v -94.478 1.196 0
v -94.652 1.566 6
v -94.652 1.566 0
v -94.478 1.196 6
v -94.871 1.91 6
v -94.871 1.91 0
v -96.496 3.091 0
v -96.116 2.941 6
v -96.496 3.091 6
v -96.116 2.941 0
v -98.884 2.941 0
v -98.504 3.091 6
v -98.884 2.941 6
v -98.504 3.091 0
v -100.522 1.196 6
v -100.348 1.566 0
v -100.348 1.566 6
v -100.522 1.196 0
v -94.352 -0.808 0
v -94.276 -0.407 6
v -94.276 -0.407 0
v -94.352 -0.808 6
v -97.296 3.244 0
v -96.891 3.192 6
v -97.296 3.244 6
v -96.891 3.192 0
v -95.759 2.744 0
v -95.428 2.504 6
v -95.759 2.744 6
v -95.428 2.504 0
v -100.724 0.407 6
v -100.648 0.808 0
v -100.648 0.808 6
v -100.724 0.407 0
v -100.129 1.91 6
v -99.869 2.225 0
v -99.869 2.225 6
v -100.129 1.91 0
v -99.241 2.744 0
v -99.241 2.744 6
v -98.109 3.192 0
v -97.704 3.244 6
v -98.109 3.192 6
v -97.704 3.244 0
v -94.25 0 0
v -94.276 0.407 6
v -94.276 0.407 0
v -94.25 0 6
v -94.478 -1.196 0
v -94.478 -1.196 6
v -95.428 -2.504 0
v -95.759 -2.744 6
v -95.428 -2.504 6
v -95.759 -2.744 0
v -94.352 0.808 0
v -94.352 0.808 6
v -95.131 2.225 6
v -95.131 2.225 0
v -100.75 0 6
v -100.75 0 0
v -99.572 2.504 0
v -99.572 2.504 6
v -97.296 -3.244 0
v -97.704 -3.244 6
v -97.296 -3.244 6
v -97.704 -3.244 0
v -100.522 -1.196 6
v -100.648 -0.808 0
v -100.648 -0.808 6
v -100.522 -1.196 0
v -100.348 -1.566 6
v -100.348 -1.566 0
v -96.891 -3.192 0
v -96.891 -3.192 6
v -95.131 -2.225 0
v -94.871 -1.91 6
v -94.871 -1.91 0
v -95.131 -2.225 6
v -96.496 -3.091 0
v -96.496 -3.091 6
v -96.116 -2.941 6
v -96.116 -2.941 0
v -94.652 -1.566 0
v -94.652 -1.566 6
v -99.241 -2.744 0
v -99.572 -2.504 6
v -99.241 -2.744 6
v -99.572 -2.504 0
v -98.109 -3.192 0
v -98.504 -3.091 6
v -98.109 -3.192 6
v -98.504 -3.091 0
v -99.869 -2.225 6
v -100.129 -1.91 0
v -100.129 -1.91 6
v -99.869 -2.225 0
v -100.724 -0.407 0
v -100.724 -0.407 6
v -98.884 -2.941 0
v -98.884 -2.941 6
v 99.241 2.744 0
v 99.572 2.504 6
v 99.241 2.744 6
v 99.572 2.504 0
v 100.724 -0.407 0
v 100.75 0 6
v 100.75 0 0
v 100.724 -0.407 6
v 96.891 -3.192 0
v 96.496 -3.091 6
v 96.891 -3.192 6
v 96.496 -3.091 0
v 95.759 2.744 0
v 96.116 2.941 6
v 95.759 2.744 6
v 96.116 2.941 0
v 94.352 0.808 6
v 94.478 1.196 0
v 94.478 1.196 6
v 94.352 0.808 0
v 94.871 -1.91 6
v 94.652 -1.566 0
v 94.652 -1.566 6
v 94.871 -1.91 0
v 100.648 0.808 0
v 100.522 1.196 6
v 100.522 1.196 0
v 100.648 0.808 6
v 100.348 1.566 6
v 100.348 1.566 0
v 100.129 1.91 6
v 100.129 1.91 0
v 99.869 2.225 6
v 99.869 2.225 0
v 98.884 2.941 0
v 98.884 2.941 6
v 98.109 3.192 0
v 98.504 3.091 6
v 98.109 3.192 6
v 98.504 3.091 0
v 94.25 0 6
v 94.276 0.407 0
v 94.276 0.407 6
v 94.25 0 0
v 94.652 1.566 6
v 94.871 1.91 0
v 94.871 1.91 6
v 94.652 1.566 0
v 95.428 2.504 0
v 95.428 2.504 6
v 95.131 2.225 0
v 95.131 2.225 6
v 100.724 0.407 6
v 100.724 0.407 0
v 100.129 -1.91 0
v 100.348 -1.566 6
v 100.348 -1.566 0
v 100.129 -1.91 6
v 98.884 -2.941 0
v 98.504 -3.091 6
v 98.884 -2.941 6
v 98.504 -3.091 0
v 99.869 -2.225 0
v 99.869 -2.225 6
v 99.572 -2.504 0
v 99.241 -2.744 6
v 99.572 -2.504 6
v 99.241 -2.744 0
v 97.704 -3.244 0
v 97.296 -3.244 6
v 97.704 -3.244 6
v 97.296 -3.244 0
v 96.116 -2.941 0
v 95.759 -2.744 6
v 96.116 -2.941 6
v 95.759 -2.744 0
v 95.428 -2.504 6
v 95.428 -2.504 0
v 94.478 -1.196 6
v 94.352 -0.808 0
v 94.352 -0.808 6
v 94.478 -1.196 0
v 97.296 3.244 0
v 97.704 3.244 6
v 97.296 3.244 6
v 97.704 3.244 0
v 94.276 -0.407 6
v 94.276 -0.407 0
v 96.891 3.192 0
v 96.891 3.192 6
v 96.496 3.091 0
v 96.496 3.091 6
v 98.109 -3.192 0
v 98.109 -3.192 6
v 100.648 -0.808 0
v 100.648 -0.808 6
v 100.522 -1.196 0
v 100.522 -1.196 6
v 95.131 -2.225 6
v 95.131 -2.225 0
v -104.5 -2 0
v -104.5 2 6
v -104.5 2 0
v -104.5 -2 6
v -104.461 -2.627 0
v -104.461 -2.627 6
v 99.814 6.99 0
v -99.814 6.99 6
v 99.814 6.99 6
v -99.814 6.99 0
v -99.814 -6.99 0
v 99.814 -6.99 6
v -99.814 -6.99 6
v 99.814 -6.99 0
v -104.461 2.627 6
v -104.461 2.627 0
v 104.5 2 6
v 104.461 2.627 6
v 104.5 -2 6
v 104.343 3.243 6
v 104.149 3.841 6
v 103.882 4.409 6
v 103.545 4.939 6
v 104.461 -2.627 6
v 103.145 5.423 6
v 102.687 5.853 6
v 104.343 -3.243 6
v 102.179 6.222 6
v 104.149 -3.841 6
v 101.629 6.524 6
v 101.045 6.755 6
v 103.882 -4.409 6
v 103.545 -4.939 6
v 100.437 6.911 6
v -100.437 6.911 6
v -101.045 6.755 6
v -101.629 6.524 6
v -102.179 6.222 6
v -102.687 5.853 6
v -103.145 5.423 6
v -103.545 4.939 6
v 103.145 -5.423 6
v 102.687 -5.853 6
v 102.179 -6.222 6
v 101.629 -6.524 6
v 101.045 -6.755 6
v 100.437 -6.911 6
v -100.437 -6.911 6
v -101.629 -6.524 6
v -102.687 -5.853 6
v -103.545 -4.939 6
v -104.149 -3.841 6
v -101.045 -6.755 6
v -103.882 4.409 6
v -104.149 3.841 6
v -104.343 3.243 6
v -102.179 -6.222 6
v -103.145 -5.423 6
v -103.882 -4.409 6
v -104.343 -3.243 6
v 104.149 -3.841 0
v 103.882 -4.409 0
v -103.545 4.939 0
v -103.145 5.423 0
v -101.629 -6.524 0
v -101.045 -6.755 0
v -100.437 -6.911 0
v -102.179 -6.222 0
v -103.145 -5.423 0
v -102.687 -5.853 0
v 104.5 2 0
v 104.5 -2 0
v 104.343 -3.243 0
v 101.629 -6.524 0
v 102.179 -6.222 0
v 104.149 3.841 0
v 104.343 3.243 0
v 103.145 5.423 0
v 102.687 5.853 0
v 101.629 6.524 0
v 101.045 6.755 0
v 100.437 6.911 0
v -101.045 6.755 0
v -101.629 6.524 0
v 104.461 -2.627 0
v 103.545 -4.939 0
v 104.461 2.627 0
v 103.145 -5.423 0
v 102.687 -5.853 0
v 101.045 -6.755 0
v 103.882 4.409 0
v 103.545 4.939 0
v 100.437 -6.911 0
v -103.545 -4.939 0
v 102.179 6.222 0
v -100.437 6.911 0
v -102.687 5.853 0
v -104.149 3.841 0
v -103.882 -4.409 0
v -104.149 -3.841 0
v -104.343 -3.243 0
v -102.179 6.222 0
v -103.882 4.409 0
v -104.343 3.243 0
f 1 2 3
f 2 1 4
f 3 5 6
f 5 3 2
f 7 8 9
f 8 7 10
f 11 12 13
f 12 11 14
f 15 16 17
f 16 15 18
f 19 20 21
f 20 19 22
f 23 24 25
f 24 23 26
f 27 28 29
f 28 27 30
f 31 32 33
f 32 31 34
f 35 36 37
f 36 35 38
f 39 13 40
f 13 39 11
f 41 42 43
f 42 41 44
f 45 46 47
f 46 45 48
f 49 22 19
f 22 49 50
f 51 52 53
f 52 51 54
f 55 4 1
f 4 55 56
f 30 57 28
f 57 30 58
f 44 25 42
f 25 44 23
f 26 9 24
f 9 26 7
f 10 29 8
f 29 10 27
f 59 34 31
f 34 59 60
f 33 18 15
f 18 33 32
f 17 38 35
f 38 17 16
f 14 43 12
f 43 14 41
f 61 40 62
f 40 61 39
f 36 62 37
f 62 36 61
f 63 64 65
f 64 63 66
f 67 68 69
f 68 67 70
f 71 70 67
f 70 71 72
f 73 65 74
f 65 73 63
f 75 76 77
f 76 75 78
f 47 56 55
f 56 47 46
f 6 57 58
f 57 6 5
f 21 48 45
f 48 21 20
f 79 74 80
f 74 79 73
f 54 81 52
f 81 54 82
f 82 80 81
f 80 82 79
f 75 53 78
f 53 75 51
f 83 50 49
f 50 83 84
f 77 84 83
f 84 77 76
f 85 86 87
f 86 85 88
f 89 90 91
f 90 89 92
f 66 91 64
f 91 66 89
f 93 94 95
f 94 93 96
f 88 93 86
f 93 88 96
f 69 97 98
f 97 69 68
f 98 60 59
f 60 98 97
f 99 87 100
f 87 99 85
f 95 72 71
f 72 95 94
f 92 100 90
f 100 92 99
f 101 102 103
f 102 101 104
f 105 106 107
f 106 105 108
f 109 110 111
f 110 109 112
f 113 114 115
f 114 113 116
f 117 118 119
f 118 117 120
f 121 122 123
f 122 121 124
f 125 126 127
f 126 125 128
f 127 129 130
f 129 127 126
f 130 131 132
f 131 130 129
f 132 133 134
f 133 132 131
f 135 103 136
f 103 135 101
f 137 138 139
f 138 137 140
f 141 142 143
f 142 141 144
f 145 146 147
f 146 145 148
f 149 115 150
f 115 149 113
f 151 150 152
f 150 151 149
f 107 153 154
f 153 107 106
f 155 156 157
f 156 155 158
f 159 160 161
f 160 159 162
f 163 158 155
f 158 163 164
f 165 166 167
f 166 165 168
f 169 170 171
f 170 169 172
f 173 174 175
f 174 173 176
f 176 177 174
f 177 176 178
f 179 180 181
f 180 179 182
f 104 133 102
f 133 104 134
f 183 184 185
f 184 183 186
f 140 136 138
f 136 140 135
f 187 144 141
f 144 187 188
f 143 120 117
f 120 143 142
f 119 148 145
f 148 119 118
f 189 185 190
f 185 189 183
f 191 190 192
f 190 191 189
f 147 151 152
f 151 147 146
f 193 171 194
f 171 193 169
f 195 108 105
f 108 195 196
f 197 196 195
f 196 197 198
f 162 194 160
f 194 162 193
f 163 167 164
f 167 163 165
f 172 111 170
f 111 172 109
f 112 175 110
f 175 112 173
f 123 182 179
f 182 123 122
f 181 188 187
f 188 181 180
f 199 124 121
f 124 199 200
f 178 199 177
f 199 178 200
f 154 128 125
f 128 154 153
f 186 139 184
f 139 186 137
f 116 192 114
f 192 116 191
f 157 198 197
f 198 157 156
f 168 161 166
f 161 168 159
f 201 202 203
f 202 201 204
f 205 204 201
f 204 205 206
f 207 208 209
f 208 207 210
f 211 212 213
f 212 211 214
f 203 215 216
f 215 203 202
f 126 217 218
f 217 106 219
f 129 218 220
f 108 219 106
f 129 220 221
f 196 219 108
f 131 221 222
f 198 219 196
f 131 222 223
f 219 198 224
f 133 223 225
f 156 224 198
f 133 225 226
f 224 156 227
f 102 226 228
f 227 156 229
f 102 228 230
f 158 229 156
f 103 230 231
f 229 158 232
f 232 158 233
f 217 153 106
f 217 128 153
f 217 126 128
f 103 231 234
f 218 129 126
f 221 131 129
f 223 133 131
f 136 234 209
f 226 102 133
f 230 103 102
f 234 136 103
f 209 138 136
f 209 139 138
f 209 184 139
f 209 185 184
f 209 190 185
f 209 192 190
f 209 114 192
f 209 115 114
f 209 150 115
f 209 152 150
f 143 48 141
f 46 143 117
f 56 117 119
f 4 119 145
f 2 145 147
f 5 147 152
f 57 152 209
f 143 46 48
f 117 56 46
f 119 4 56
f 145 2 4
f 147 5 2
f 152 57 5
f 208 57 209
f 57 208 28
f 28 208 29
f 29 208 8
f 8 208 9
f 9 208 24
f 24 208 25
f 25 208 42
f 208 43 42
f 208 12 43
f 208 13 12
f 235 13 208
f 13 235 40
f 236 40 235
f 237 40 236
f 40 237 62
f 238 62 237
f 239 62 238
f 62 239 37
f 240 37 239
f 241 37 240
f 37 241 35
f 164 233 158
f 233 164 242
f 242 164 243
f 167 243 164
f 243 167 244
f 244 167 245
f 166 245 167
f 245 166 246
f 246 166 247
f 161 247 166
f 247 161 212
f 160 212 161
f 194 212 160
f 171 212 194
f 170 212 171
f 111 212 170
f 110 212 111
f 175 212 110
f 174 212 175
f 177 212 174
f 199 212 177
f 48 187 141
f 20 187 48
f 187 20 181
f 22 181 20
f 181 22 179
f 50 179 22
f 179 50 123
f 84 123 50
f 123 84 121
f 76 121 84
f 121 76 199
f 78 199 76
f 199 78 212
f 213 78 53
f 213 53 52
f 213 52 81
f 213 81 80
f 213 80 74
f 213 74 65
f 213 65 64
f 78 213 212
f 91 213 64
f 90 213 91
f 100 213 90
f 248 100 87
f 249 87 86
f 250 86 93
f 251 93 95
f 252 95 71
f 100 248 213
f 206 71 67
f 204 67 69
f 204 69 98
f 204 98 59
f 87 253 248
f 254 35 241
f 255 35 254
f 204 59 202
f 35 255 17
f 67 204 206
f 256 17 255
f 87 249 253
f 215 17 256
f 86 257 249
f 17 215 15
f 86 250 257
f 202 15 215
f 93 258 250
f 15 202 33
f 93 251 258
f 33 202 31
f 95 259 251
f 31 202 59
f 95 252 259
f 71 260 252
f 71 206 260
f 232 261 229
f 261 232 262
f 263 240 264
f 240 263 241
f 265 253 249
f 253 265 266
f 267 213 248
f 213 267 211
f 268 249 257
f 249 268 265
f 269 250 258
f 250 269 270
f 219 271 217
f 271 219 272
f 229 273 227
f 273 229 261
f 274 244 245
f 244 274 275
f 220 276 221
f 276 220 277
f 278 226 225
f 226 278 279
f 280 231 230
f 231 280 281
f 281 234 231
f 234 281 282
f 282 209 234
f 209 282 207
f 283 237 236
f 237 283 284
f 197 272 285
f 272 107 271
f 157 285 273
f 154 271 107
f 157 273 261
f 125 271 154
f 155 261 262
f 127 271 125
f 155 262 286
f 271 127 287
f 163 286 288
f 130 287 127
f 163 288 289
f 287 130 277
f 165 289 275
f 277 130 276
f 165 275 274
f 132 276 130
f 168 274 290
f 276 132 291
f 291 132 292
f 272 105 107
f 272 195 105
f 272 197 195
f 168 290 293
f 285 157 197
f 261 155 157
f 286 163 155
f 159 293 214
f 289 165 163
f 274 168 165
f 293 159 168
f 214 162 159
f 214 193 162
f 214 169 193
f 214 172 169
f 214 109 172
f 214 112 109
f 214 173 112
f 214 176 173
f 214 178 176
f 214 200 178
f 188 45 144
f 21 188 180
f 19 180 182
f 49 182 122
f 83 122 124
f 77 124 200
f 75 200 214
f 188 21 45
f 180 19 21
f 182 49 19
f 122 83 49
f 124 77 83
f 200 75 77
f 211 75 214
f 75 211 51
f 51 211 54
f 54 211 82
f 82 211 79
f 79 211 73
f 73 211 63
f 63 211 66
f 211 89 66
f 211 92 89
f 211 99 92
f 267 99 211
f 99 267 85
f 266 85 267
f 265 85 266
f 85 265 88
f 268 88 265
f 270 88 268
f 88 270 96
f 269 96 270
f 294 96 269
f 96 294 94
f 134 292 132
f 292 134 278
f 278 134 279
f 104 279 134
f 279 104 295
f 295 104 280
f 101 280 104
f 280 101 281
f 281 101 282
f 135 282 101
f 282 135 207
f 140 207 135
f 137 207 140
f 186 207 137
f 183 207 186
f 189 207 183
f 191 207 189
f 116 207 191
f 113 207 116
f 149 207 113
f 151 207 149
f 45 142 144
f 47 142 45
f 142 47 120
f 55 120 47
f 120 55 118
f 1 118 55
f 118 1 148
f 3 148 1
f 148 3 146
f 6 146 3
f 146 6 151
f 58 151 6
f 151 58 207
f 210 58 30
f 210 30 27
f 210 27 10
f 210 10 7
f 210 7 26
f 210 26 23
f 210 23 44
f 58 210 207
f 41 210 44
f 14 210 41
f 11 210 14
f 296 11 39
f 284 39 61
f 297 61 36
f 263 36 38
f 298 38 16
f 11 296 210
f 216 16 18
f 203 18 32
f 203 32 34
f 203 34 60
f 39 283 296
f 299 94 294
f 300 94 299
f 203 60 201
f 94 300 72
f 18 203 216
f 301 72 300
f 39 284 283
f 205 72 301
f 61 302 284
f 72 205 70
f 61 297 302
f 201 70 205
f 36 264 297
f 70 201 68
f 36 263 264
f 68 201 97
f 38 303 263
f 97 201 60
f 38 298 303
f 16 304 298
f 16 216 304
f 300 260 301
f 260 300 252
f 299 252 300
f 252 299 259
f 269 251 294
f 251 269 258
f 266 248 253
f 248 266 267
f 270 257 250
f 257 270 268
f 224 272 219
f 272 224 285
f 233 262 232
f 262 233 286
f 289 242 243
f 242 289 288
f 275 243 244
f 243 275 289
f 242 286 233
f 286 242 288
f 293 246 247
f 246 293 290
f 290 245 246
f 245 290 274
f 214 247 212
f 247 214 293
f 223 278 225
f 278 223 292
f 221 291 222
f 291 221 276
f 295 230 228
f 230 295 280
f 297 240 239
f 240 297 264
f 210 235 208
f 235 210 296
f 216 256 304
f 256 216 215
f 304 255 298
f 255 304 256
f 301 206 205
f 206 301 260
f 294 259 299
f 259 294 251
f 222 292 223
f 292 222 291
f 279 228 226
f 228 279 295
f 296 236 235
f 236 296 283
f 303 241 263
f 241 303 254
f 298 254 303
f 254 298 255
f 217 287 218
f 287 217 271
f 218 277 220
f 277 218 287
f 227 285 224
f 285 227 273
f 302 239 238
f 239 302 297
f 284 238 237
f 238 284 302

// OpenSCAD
$fn = 50;


difference() {
	union() {
		hull() {
			translate(v = [-99.5000000000, 2.0000000000, 0]) {
				cylinder(h = 6, r = 5);
			}
			translate(v = [99.5000000000, 2.0000000000, 0]) {
				cylinder(h = 6, r = 5);
			}
			translate(v = [-99.5000000000, -2.0000000000, 0]) {
				cylinder(h = 6, r = 5);
			}
			translate(v = [99.5000000000, -2.0000000000, 0]) {
				cylinder(h = 6, r = 5);
			}
		}
	}
	union() {
		translate(v = [-97.5000000000, 0.0000000000, -100.0000000000]) {
			cylinder(h = 200, r = 3.2500000000);
		}
		translate(v = [-97.5000000000, 0.0000000000, -100.0000000000]) {
			cylinder(h = 200, r = 3.2500000000);
		}
		translate(v = [97.5000000000, 0.0000000000, -100.0000000000]) {
			cylinder(h = 200, r = 3.2500000000);
		}
		translate(v = [97.5000000000, 0.0000000000, -100.0000000000]) {
			cylinder(h = 200, r = 3.2500000000);
		}
	}
}
